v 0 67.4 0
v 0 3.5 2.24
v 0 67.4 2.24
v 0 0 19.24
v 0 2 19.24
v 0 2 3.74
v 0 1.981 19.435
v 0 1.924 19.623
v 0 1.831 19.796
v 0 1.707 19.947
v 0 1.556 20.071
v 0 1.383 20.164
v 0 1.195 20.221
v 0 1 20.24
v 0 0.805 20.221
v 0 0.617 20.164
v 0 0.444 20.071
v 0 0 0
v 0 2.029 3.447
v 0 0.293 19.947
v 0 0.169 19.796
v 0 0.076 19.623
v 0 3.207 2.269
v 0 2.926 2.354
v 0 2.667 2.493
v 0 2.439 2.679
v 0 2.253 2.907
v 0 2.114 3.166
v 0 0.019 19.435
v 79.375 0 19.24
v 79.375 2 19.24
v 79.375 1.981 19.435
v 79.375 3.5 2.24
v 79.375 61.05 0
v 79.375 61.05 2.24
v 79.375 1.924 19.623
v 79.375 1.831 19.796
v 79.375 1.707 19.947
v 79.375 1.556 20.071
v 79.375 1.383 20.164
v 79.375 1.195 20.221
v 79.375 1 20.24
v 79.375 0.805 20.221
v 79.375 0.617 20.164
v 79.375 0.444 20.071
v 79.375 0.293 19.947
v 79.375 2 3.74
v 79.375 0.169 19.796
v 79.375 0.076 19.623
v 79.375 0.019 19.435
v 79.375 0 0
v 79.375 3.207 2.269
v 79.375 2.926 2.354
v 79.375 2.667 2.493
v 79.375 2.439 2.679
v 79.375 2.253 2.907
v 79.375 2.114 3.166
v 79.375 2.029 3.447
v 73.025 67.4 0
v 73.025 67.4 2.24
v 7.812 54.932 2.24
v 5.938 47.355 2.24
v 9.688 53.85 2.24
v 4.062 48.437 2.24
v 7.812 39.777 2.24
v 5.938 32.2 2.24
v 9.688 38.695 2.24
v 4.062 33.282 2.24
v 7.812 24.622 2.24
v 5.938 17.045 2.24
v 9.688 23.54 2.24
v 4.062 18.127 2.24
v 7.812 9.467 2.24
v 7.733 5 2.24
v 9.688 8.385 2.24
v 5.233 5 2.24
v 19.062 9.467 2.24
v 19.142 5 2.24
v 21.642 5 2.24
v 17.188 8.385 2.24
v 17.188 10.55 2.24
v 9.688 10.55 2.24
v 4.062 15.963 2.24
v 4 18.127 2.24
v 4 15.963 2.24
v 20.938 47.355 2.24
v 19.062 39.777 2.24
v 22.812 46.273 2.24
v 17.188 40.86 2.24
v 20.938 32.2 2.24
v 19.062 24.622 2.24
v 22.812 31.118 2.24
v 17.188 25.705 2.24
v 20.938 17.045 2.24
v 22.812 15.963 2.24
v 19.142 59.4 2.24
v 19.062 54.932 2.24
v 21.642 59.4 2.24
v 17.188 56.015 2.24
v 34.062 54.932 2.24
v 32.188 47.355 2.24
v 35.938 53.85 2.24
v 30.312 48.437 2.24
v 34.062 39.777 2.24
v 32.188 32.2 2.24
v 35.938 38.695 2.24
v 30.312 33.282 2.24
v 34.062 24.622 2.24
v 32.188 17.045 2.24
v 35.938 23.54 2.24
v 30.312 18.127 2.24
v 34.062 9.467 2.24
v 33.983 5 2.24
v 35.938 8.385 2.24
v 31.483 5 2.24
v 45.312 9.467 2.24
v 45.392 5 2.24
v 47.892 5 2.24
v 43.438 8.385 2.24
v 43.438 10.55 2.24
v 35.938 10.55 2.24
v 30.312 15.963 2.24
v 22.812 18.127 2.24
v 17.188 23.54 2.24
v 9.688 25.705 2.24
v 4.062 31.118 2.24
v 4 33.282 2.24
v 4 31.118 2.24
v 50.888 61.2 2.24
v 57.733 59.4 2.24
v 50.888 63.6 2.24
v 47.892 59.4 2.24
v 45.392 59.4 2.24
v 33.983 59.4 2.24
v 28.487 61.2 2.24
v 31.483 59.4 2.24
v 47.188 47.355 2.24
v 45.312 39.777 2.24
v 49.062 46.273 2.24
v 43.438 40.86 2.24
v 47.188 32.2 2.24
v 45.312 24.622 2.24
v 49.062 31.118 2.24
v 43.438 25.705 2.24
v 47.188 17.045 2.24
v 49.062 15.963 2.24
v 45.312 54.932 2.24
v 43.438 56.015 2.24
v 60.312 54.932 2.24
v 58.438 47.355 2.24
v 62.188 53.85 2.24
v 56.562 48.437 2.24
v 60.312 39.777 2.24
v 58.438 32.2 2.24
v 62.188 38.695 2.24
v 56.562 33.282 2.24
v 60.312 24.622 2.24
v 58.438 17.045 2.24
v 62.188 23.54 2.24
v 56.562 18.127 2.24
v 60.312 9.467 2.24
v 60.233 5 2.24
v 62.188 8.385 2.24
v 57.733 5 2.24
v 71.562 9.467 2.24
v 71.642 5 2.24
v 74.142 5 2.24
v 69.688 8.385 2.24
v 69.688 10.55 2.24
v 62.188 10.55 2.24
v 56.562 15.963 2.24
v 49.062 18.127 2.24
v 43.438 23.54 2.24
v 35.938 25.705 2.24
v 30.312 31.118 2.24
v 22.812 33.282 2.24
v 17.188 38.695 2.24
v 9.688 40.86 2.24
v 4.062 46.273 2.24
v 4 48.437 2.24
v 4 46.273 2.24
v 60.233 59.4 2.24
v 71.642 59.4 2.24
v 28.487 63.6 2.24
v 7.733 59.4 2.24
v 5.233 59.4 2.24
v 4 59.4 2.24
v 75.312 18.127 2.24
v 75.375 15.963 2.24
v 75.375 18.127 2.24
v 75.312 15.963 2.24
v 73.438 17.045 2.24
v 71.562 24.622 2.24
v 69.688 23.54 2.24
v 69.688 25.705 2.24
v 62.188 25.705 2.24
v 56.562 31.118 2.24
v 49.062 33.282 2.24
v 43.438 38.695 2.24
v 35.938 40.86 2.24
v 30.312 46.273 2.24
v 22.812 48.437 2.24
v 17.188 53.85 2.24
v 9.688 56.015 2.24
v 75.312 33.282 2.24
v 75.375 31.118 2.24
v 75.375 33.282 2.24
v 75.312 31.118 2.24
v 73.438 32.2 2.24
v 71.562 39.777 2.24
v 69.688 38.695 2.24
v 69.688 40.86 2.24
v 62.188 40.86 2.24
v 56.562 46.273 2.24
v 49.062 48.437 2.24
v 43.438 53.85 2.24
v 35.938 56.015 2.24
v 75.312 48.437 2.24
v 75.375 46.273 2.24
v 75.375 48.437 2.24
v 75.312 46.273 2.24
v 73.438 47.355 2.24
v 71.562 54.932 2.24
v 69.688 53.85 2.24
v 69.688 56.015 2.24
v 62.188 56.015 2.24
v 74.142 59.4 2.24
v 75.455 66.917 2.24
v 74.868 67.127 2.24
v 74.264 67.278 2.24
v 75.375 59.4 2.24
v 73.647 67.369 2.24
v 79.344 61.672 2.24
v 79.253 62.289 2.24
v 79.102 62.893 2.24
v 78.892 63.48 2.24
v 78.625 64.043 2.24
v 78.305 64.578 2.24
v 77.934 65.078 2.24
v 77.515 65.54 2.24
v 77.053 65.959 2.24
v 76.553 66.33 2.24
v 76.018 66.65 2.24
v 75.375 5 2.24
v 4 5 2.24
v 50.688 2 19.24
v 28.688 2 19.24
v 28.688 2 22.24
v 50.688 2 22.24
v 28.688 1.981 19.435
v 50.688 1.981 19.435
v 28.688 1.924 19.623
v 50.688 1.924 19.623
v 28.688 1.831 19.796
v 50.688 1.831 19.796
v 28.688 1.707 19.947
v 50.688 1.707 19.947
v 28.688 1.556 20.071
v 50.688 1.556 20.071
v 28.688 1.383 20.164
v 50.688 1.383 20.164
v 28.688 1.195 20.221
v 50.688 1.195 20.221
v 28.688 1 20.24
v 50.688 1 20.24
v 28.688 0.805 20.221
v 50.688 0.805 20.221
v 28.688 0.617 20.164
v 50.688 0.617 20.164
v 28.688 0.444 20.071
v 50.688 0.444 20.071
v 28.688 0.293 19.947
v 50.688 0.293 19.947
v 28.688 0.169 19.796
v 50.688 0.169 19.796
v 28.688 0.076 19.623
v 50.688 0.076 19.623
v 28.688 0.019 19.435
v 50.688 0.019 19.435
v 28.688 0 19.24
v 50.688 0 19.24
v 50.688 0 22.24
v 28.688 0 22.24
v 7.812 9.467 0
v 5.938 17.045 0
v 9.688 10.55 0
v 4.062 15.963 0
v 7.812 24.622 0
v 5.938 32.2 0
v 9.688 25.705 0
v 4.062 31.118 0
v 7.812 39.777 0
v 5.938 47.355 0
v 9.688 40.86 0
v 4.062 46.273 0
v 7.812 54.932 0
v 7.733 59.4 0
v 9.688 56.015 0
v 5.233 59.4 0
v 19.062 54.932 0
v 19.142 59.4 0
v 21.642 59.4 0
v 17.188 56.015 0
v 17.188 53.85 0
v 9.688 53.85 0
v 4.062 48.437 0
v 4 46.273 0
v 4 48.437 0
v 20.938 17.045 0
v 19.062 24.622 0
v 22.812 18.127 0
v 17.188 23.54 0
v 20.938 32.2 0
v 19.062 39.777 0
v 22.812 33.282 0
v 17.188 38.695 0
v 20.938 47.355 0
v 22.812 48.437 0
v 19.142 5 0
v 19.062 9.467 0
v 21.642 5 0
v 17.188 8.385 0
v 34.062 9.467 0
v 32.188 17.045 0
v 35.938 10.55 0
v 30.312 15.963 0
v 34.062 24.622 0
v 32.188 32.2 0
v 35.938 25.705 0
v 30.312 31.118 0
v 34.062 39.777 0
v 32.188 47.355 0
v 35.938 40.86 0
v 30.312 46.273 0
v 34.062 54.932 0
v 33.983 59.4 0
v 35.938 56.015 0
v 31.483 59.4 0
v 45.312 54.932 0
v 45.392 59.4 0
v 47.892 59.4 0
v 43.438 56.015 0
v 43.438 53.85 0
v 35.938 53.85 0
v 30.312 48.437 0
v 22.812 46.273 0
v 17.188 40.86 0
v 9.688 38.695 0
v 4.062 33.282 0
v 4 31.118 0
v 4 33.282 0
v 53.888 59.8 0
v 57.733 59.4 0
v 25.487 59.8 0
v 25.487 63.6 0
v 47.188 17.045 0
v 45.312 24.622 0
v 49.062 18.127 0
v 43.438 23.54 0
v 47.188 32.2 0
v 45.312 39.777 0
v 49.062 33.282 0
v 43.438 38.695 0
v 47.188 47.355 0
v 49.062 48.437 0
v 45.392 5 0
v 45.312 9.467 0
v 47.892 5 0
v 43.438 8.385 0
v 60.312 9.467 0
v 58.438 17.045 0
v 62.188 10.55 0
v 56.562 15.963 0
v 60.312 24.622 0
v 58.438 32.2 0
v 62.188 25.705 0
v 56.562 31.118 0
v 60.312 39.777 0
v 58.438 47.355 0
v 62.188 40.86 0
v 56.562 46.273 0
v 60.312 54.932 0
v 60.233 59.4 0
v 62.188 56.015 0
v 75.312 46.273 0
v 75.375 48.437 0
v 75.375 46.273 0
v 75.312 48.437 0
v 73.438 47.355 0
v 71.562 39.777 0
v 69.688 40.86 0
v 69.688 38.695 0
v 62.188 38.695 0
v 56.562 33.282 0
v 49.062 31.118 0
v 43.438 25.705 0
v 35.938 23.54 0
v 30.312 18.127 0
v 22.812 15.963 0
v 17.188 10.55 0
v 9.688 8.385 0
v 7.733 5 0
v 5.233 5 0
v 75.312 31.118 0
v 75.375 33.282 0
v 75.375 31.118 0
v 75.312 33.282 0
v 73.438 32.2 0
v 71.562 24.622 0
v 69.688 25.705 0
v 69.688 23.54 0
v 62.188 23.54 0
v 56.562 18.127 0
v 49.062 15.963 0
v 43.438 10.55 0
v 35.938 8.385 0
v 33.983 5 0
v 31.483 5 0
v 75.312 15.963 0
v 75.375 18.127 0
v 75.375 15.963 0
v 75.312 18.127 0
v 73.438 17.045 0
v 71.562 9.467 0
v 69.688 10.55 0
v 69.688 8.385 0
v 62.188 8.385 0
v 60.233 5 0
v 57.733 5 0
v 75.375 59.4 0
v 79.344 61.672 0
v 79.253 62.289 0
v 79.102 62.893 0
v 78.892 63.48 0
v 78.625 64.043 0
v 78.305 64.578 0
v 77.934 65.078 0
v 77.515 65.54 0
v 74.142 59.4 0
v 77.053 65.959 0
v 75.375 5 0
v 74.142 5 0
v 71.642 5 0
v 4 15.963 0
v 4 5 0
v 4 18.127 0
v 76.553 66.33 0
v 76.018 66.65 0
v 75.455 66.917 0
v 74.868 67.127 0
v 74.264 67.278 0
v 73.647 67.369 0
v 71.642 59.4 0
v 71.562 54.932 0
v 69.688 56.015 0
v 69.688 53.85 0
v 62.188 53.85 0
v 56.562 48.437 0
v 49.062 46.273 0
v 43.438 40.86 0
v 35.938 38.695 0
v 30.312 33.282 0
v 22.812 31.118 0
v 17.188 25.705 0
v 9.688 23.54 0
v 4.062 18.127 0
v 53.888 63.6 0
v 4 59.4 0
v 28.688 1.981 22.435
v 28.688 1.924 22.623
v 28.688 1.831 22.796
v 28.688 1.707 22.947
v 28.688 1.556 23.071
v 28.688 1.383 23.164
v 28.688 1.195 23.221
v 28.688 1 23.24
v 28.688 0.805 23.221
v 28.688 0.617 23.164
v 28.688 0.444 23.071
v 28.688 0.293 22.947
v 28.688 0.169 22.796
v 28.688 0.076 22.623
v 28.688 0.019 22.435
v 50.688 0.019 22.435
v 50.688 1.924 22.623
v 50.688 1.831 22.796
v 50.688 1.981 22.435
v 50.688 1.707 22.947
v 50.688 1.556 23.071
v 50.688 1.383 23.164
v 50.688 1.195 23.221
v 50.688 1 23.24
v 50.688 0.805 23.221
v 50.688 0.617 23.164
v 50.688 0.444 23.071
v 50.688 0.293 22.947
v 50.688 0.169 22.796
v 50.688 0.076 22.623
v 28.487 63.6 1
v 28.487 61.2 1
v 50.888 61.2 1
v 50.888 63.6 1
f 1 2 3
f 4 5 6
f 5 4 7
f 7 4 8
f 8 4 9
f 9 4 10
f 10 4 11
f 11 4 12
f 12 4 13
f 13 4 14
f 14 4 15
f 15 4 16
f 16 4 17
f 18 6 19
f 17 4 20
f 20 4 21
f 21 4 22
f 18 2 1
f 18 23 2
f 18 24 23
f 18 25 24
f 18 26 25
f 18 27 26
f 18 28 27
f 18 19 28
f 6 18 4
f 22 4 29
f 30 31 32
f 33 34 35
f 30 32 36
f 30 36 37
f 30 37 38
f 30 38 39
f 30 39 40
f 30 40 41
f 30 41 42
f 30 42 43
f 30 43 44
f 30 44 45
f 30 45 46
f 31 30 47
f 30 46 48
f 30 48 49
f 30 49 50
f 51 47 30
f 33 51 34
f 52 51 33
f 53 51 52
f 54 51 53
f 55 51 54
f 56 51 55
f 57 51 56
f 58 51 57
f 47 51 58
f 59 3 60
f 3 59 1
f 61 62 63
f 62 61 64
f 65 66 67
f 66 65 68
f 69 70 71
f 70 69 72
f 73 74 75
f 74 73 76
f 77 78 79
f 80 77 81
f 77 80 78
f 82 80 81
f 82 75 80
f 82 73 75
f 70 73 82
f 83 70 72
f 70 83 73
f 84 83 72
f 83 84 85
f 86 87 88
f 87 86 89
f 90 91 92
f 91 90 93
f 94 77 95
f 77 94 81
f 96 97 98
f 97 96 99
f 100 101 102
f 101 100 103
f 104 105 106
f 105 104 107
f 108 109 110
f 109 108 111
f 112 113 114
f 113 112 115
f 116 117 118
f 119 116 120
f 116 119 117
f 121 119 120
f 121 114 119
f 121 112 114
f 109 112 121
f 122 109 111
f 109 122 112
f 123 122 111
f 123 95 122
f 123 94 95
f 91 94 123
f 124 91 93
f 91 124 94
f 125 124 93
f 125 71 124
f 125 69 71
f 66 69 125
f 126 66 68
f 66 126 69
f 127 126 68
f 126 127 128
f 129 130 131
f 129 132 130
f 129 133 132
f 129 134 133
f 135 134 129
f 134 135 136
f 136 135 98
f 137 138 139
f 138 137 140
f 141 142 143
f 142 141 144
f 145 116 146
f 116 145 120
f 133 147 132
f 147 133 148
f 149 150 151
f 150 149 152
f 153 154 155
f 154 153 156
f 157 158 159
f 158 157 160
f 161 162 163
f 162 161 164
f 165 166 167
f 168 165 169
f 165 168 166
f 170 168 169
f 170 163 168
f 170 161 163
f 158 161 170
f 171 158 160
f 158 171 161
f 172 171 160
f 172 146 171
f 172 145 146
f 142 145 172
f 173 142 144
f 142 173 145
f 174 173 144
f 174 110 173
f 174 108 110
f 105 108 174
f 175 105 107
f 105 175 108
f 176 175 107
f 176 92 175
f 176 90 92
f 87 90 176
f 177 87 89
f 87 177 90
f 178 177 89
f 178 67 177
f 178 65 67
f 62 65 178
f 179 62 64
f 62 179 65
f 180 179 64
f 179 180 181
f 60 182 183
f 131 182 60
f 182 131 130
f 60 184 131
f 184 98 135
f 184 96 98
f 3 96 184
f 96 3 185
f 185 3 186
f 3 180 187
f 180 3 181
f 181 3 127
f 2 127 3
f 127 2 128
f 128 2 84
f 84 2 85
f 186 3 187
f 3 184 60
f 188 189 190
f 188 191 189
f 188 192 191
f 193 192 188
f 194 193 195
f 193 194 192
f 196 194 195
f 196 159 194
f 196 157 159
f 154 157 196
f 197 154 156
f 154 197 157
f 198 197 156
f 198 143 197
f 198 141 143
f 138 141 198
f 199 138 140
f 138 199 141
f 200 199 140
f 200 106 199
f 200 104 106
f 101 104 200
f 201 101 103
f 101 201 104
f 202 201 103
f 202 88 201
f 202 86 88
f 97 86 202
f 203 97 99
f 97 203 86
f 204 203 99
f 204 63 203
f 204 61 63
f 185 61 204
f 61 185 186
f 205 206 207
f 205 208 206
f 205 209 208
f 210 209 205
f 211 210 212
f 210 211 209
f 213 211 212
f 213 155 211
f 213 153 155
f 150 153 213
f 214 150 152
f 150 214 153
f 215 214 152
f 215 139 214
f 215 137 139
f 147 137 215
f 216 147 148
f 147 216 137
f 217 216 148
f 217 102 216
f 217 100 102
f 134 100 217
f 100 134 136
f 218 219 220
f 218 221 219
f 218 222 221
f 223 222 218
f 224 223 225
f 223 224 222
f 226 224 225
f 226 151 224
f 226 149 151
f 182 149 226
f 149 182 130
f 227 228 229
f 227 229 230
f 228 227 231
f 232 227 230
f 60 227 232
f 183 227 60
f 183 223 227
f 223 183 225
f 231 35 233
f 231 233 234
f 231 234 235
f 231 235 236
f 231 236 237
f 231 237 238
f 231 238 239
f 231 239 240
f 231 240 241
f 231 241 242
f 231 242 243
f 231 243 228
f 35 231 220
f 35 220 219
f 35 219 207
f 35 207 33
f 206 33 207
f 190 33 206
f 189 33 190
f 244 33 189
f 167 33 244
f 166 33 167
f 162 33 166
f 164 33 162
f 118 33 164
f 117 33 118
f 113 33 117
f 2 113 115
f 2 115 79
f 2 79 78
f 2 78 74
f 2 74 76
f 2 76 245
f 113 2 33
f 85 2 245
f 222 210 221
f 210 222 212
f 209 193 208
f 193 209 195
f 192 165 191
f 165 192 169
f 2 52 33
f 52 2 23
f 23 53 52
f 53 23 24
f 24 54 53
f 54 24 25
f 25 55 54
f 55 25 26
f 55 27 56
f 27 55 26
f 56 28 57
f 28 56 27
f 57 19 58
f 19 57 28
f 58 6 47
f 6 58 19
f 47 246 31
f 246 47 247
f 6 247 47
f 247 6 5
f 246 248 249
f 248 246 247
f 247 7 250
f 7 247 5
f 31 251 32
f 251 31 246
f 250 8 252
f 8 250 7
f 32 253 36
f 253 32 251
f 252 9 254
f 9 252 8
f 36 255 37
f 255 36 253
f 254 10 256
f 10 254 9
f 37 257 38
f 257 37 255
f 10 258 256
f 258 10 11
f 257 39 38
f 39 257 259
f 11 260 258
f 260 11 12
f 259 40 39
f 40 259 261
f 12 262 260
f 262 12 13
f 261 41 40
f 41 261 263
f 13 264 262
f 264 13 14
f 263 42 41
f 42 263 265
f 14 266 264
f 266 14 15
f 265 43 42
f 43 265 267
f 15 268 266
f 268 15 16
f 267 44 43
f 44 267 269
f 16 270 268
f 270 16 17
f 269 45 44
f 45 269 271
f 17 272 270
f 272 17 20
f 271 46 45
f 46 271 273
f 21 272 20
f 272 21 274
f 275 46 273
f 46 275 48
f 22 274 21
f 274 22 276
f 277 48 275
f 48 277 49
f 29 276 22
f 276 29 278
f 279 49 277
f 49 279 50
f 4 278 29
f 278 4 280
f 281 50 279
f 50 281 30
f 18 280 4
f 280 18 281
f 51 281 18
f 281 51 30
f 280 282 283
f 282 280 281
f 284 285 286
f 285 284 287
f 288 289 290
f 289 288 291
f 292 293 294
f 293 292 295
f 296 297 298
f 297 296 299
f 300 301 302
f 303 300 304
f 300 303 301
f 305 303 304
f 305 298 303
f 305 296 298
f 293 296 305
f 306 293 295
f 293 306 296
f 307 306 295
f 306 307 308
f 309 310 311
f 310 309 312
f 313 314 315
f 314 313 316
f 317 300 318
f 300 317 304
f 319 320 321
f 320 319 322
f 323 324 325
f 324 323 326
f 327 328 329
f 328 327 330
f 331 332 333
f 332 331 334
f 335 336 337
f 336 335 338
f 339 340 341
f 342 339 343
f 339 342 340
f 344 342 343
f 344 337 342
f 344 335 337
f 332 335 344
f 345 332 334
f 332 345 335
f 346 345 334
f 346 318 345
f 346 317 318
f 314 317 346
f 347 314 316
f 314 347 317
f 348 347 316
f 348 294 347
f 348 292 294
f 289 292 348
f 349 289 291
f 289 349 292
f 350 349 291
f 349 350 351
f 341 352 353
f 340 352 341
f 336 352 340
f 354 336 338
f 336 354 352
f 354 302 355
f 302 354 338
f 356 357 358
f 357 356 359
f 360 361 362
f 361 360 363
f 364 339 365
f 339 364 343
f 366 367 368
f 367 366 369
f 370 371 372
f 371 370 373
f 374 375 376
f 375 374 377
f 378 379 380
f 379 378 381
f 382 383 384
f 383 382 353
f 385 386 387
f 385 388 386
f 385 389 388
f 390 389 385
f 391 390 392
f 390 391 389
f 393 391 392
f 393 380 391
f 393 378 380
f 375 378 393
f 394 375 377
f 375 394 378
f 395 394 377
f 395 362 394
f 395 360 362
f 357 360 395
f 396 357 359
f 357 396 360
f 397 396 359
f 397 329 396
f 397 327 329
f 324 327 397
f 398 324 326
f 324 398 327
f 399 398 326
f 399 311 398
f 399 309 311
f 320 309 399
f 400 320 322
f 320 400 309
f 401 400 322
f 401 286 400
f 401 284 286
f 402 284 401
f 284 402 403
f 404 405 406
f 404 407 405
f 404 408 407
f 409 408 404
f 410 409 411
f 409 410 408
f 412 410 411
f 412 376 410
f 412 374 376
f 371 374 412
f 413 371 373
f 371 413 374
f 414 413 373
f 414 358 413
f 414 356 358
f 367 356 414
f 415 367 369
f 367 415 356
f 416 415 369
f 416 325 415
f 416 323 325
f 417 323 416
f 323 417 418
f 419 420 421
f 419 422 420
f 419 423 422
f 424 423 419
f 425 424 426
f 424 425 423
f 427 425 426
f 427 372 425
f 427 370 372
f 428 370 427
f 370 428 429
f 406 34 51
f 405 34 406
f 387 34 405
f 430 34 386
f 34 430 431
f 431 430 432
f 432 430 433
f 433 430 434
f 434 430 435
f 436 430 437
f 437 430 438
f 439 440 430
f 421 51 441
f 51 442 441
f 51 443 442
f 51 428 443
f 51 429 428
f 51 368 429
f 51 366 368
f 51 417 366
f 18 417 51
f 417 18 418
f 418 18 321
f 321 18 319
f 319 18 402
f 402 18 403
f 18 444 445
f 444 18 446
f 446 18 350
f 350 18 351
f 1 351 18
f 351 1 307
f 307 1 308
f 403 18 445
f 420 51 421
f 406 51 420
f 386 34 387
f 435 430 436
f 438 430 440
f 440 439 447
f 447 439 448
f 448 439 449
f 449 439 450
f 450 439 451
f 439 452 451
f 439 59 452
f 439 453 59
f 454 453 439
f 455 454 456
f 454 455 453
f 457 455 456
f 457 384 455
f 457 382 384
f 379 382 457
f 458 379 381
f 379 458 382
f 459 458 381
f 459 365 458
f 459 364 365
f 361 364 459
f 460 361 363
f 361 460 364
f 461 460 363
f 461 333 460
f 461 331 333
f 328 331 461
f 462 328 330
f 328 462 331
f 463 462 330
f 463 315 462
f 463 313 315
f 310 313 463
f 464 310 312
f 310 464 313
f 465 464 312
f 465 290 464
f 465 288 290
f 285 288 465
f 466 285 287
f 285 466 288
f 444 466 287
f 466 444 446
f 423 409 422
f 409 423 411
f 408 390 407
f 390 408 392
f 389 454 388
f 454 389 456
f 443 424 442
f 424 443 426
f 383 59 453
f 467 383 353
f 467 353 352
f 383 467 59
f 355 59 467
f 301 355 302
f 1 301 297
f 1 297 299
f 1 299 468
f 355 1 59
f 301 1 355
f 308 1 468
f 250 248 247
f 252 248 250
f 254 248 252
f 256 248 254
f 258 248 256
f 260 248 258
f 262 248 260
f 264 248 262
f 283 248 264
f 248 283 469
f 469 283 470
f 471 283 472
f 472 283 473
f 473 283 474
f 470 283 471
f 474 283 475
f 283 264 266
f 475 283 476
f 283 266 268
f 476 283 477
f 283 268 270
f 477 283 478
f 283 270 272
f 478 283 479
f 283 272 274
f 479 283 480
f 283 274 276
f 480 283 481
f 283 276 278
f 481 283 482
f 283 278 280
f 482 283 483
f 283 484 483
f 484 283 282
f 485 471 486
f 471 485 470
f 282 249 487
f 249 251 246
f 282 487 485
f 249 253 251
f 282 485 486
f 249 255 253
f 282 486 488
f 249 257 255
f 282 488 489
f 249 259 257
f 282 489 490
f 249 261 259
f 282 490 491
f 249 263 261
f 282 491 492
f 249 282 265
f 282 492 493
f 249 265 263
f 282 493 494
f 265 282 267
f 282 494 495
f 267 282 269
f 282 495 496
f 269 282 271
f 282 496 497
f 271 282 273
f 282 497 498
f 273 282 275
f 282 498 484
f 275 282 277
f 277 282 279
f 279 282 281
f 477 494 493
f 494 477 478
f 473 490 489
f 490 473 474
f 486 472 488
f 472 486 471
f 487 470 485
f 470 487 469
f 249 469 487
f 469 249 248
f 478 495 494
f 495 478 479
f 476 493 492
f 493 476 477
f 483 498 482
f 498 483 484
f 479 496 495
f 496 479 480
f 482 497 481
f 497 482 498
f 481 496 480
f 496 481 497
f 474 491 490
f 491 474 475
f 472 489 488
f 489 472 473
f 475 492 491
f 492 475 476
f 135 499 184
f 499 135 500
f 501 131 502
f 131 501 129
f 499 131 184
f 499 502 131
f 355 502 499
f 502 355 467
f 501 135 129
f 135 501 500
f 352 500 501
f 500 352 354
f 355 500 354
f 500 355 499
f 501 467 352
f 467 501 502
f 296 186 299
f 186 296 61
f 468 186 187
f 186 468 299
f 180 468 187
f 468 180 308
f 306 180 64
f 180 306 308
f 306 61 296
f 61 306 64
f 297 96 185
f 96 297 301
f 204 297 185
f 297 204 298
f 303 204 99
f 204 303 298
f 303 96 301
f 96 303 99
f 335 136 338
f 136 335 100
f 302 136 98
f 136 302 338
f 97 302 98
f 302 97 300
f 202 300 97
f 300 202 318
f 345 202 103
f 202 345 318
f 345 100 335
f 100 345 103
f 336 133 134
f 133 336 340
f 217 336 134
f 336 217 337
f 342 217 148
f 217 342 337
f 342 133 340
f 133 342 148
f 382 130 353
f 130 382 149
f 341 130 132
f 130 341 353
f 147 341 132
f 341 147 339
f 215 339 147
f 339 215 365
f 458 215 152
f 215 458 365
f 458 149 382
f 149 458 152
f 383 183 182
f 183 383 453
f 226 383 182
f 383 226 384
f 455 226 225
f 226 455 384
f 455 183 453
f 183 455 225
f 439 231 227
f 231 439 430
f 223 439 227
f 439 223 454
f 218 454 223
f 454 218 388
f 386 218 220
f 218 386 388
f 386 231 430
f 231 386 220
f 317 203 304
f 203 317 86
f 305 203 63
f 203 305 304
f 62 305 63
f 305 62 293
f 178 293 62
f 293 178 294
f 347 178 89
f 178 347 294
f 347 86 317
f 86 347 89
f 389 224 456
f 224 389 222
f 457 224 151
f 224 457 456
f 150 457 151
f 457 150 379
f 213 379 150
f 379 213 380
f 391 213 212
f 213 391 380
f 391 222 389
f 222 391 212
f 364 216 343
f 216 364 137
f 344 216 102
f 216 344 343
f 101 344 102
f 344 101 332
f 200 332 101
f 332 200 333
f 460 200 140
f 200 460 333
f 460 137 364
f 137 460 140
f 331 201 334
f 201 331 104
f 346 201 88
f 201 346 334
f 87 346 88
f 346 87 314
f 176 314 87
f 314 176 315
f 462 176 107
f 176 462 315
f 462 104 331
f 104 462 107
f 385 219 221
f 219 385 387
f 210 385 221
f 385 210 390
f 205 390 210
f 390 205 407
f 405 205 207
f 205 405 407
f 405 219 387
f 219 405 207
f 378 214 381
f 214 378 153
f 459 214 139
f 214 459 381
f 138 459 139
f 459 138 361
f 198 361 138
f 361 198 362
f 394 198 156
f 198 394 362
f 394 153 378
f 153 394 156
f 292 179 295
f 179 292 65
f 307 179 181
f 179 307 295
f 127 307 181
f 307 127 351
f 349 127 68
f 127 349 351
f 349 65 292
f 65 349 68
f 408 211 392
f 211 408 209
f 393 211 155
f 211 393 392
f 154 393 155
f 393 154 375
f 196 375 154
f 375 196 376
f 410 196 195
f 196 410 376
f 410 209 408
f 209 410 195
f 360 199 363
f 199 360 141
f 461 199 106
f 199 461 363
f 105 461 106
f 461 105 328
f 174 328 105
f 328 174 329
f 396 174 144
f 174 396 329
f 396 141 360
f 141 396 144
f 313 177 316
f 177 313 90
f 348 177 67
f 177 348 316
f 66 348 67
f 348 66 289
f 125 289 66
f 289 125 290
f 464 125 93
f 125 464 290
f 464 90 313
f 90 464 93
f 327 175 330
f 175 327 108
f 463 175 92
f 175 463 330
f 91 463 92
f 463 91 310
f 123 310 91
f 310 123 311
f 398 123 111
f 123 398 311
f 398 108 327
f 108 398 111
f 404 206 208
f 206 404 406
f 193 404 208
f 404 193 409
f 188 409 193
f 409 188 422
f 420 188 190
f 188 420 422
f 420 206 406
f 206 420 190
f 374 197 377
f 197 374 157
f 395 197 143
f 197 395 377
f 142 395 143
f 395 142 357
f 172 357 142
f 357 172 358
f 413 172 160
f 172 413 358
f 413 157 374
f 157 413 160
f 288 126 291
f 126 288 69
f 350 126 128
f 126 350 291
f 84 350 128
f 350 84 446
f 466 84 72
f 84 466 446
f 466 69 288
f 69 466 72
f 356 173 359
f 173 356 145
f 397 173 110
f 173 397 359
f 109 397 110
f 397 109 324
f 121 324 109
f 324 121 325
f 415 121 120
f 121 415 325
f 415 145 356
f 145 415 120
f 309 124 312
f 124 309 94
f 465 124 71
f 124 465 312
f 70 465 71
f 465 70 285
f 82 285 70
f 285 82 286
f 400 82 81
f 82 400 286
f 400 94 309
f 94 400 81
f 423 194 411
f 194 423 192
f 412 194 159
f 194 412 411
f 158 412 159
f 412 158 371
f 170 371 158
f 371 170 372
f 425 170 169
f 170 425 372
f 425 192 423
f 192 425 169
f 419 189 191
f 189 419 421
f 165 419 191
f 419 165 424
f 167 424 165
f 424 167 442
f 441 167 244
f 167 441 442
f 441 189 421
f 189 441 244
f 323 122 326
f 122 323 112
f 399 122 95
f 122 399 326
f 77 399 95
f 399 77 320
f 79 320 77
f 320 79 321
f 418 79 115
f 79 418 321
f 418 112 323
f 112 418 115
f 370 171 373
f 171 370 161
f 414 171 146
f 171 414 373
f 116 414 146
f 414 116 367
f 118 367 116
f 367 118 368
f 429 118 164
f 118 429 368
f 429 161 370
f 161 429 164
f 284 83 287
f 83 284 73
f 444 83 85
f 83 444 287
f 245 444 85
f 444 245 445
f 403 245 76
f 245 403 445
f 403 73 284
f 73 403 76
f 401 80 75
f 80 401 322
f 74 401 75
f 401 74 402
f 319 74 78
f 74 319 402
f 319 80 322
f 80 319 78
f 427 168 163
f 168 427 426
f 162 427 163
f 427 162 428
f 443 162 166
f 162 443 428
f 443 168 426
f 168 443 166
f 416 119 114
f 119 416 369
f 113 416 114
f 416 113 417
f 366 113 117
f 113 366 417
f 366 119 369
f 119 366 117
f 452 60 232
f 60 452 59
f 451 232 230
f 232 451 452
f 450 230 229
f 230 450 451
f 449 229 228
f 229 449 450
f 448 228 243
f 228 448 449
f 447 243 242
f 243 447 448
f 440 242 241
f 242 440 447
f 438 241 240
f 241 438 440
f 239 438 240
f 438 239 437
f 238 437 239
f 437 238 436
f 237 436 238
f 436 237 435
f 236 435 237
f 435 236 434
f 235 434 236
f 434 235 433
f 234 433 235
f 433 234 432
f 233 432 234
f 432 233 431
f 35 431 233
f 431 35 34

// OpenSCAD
// Wake flat v2: built on the v6 design. One-piece L riser printed flat, plate on the bed, lip standing up.
// Kept exactly from v6: plate size (65.4 mm deep x width), 2.24 mm plate (2 + 0.24 extra back layers),
//   hex size/gap/borders/grid positions, the small W, and the lip size (2 mm thick, 20 mm deep from the front face).
// New: wall tabs on the lip top that rest by gravity in slots near the free edge of the next plate.
// No ridges, channels or bands.
//
// Axes: x = width, y = plate depth (y=0 is the lip end of the plate, v6's z_bot end), z = up (plate front face up).
// The x axis is mirrored relative to v6's panel coordinates so the part is the same physical part, not a mirror image.

// Extension piece: exactly 3 1/8 in wide, one tab/slot at centre, no W.
width       = 3.125 * 25.4;                // 79.375 mm

// v6 plate: back_height 70.5 - panel_top_trim 1.0 - boss_h 4.1
panel_h  = 65.4;
edge_extra = 2;                           // extra solid border past the v6 plate edge (free-edge side only); hex grid and slot positions unchanged
plate_d  = panel_h + edge_extra;
wall     = 2;                             // lip thickness (v6 `wall`)
back_extra = 0.24;                        // v6: 2 * 0.12 extra layers on the back
plate_t  = wall + back_extra;
bottom_lip_depth = 20;                    // v6 lip depth, measured from the back face's y datum
lip_h    = bottom_lip_depth + back_extra; // lip height from the bed: sticks out 18 mm past the front face, same as v6
fillet_in = 1.5;                          // where the lip meets the plate

// hex grid, same as v6
hex_size   = 15;
hex_gap    = 2.5;
border_x   = 4;
border_top = 6;
band_h     = 5;                           // v6 band_v 2 + ramp_h 3: hex area starts this far from the lip end

// small W, same as v6: one hex at the far corner, max x and max v6-z
small_w_on     = false;
small_w_w      = 0.85;
small_w_h      = 0.62;
small_w_stroke = 2.0;
letter_flip    = true;

// bottom piece only: round the free-edge corner at max x (bottom right) for the case's rounded inner corner
bottom_piece  = true; 
corner_cut_r  = 6.35;                     // 1/4 in

// tabs on the lip top, slots in the plate
tab_len     = 22;
tab_h       = 3;                          // tabs stick up past lip_h
tab_clear   = 0.2;                        // slot clearance per side
slot_from_edge = 3;                       // free edge to slot centre line (hex area ends border_top = 6 from the edge)
ramp_depth = 1.0;                         // funnel depth into the plate from the back face, leaves plate_t - ramp_depth straight
ramp_run_y = 1.4;                         // flare on the hex side of each slot only, none on the free-edge side (stops short of the hex area at 1.8 mm)
ramp_run_x = 3.0;                         // flare past each end, gentler lead-in

// shingle step used by the storage case: how far each piece sits along y from the one below when stacked tight
// (the lip wall and its fillet need 3.5 mm, plus 0.1)
stack_step = 3.6;
assert(stack_step >= wall + fillet_in, "stack_step too small to clear the lip wall and fillet");

tab_xs = [width / 2];                     // single tab, centred
left_end  = tab_xs[0] - (tab_len / 2 + tab_clear);   // free stretches either side of the slots, where the text goes
right_beg = tab_xs[0] + (tab_len / 2 + tab_clear);

// engraved logo and version on the front face, in the solid strip along the free edge, either side of the slots
engrave      = false;
brand_text   = "BlueBytes";
version_text = "Wake v30";
tag_size     = 3.5;
tag_depth    = 0.7;
tag_font     = "Liberation Sans:style=Bold";

$fn = 32;

function cells(w, h) =
    let (pitch = hex_size + hex_gap, step_x = pitch * 0.75, step_z = pitch * 0.866,
         cx = w / 2, cz = h / 2,
         ncols = ceil(w / (2 * step_x)) + 2, nrows = ceil(h / (2 * step_z)) + 2)
    [for (col = [-ncols : ncols]) for (row = [-nrows : nrows])
        let (parity = ((col % 2) + 2) % 2,
             x = cx + col * step_x,
             z = cz + row * step_z + (parity == 0 ? 0 : step_z / 2))
        [x, z]];

function corner_cell(w, h) =
    let (c = [for (p = cells(w, h)) if (p[0] - hex_size / 2 >= 0 && p[0] + hex_size / 2 <= w && p[1] - hex_size / 2 >= 0 && p[1] + hex_size / 2 <= h) p],
         best = max([for (p = c) p[0] + p[1]]))
    [for (p = c) if (p[0] + p[1] == best) p][0];

module w_shape2d(lw, lh, stroke) {
    f = letter_flip ? -1 : 1;
    pts = [[-lw / 2, f * lh / 2], [-lw / 4, -f * lh / 2], [0, f * lh * 0.15], [lw / 4, -f * lh / 2], [lw / 2, f * lh / 2]];
    for (i = [0 : 3]) hull() {
        translate(pts[i]) circle(d = stroke, $fn = 24);
        translate(pts[i + 1]) circle(d = stroke, $fn = 24);
    }
}

// the v6 hex pattern as a 2D cut; the cell grid is symmetric in x, only the W cell is mirrored
module hex_cut2d(w, h) {
    cc = corner_cell(w, h);
    difference() {
        intersection() {
            for (c = cells(w, h)) translate(c) circle(d = hex_size, $fn = 6);
            square([w, h]);
        }
        if (small_w_on)
            translate([w - cc[0], cc[1]]) w_shape2d(hex_size * small_w_w, hex_size * small_w_h, small_w_stroke);
    }
}

// (y, z) profile of plate + lip + fillet, extruded along x
module body() {
    r = wall / 2;
    rotate([90, 0, 90]) linear_extrude(width) union() {
        square([plate_d, plate_t]);
        square([wall, lip_h - r]);
        translate([r, lip_h - r]) circle(r = r, $fn = 32);       // rounded lip top, as in v6
        difference() {
            translate([wall - 0.01, plate_t - 0.01]) square([fillet_in + 0.01, fillet_in + 0.01]);
            translate([wall + fillet_in, plate_t + fillet_in]) circle(r = fillet_in);
        }
    }
}

module tabs() {
    r = wall / 2;
    z0 = lip_h - r;                       // starts inside the rounded lip top
    for (x = tab_xs)
        translate([x - tab_len / 2, 0, 0]) rotate([90, 0, 90]) linear_extrude(tab_len) union() {
            translate([0, z0]) square([wall, tab_h]);                         // up to where the round starts
            translate([r, lip_h + tab_h - r]) circle(r = r, $fn = 32);        // rounded tab top, same radius as the lip
        }
}

module slots() {
    sw = wall + 2 * tab_clear;
    sl = tab_len + 2 * tab_clear;
    y0 = panel_h - slot_from_edge - sw / 2;
    for (x = tab_xs) {
        translate([x - sl / 2, y0, -1]) cube([sl, sw, plate_t + 2]);
        // lead-in funnel on the back face (z=0, the bed side), the face the tab enters from
        hull() {
            translate([x - sl / 2, y0, ramp_depth - 0.01]) cube([sl, sw, 0.01]);
            translate([x - sl / 2 - ramp_run_x, y0 - ramp_run_y, -0.01]) cube([sl + 2 * ramp_run_x, sw + ramp_run_y, 0.01]);
        }
    }
}

// text is centred on its cap height in the solid strip between the hex area and the free edge
// (cap height of Liberation Sans Bold = 0.954 x size; the text is turned 180 deg, so its up is -y)
cap_h     = 0.954 * tag_size;
strip_mid = ((panel_h - border_top) + plate_d) / 2;
module tag_text(txt, x_pos) {
    translate([x_pos, strip_mid + cap_h / 2, plate_t - tag_depth]) rotate([0, 0, 180])
        linear_extrude(height = tag_depth + 0.5)
            text(txt, size = tag_size, font = tag_font, halign = "center", valign = "baseline");
}

module corner_cutter() {
    translate([width - corner_cut_r, plate_d - corner_cut_r, -1]) linear_extrude(plate_t + 2)
        difference() {
            square([corner_cut_r + 1, corner_cut_r + 1]);
            circle(r = corner_cut_r, $fn = 64);
        }
}

module riser() {
    difference() {
        union() { body(); tabs(); }
        translate([border_x, band_h, -1]) linear_extrude(plate_t + 2)
            hex_cut2d(width - 2 * border_x, panel_h - band_h - border_top);
        slots();
        if (bottom_piece) corner_cutter();
        if (engrave) {
            tag_text(brand_text, (border_x + left_end) / 2);
            tag_text(version_text, (right_beg + width - border_x) / 2);
        }
    }
}

// two boxes over the engraved text areas, in the riser's own coordinates, to load into the slicer as modifiers
// (ironing is a slicer setting; this just marks where). "riser" | "iron_modifiers"
output = "riser";
module iron_boxes() {
    for (x0 = [border_x + 1, right_beg + 1])
        translate([x0, panel_h - border_top, 0])
            cube([left_end - border_x - 2, plate_d - (panel_h - border_top), plate_t + 0.7]);
}

render_riser = true;
if (render_riser) { if (output == "iron_modifiers") iron_boxes(); else riser(); }
